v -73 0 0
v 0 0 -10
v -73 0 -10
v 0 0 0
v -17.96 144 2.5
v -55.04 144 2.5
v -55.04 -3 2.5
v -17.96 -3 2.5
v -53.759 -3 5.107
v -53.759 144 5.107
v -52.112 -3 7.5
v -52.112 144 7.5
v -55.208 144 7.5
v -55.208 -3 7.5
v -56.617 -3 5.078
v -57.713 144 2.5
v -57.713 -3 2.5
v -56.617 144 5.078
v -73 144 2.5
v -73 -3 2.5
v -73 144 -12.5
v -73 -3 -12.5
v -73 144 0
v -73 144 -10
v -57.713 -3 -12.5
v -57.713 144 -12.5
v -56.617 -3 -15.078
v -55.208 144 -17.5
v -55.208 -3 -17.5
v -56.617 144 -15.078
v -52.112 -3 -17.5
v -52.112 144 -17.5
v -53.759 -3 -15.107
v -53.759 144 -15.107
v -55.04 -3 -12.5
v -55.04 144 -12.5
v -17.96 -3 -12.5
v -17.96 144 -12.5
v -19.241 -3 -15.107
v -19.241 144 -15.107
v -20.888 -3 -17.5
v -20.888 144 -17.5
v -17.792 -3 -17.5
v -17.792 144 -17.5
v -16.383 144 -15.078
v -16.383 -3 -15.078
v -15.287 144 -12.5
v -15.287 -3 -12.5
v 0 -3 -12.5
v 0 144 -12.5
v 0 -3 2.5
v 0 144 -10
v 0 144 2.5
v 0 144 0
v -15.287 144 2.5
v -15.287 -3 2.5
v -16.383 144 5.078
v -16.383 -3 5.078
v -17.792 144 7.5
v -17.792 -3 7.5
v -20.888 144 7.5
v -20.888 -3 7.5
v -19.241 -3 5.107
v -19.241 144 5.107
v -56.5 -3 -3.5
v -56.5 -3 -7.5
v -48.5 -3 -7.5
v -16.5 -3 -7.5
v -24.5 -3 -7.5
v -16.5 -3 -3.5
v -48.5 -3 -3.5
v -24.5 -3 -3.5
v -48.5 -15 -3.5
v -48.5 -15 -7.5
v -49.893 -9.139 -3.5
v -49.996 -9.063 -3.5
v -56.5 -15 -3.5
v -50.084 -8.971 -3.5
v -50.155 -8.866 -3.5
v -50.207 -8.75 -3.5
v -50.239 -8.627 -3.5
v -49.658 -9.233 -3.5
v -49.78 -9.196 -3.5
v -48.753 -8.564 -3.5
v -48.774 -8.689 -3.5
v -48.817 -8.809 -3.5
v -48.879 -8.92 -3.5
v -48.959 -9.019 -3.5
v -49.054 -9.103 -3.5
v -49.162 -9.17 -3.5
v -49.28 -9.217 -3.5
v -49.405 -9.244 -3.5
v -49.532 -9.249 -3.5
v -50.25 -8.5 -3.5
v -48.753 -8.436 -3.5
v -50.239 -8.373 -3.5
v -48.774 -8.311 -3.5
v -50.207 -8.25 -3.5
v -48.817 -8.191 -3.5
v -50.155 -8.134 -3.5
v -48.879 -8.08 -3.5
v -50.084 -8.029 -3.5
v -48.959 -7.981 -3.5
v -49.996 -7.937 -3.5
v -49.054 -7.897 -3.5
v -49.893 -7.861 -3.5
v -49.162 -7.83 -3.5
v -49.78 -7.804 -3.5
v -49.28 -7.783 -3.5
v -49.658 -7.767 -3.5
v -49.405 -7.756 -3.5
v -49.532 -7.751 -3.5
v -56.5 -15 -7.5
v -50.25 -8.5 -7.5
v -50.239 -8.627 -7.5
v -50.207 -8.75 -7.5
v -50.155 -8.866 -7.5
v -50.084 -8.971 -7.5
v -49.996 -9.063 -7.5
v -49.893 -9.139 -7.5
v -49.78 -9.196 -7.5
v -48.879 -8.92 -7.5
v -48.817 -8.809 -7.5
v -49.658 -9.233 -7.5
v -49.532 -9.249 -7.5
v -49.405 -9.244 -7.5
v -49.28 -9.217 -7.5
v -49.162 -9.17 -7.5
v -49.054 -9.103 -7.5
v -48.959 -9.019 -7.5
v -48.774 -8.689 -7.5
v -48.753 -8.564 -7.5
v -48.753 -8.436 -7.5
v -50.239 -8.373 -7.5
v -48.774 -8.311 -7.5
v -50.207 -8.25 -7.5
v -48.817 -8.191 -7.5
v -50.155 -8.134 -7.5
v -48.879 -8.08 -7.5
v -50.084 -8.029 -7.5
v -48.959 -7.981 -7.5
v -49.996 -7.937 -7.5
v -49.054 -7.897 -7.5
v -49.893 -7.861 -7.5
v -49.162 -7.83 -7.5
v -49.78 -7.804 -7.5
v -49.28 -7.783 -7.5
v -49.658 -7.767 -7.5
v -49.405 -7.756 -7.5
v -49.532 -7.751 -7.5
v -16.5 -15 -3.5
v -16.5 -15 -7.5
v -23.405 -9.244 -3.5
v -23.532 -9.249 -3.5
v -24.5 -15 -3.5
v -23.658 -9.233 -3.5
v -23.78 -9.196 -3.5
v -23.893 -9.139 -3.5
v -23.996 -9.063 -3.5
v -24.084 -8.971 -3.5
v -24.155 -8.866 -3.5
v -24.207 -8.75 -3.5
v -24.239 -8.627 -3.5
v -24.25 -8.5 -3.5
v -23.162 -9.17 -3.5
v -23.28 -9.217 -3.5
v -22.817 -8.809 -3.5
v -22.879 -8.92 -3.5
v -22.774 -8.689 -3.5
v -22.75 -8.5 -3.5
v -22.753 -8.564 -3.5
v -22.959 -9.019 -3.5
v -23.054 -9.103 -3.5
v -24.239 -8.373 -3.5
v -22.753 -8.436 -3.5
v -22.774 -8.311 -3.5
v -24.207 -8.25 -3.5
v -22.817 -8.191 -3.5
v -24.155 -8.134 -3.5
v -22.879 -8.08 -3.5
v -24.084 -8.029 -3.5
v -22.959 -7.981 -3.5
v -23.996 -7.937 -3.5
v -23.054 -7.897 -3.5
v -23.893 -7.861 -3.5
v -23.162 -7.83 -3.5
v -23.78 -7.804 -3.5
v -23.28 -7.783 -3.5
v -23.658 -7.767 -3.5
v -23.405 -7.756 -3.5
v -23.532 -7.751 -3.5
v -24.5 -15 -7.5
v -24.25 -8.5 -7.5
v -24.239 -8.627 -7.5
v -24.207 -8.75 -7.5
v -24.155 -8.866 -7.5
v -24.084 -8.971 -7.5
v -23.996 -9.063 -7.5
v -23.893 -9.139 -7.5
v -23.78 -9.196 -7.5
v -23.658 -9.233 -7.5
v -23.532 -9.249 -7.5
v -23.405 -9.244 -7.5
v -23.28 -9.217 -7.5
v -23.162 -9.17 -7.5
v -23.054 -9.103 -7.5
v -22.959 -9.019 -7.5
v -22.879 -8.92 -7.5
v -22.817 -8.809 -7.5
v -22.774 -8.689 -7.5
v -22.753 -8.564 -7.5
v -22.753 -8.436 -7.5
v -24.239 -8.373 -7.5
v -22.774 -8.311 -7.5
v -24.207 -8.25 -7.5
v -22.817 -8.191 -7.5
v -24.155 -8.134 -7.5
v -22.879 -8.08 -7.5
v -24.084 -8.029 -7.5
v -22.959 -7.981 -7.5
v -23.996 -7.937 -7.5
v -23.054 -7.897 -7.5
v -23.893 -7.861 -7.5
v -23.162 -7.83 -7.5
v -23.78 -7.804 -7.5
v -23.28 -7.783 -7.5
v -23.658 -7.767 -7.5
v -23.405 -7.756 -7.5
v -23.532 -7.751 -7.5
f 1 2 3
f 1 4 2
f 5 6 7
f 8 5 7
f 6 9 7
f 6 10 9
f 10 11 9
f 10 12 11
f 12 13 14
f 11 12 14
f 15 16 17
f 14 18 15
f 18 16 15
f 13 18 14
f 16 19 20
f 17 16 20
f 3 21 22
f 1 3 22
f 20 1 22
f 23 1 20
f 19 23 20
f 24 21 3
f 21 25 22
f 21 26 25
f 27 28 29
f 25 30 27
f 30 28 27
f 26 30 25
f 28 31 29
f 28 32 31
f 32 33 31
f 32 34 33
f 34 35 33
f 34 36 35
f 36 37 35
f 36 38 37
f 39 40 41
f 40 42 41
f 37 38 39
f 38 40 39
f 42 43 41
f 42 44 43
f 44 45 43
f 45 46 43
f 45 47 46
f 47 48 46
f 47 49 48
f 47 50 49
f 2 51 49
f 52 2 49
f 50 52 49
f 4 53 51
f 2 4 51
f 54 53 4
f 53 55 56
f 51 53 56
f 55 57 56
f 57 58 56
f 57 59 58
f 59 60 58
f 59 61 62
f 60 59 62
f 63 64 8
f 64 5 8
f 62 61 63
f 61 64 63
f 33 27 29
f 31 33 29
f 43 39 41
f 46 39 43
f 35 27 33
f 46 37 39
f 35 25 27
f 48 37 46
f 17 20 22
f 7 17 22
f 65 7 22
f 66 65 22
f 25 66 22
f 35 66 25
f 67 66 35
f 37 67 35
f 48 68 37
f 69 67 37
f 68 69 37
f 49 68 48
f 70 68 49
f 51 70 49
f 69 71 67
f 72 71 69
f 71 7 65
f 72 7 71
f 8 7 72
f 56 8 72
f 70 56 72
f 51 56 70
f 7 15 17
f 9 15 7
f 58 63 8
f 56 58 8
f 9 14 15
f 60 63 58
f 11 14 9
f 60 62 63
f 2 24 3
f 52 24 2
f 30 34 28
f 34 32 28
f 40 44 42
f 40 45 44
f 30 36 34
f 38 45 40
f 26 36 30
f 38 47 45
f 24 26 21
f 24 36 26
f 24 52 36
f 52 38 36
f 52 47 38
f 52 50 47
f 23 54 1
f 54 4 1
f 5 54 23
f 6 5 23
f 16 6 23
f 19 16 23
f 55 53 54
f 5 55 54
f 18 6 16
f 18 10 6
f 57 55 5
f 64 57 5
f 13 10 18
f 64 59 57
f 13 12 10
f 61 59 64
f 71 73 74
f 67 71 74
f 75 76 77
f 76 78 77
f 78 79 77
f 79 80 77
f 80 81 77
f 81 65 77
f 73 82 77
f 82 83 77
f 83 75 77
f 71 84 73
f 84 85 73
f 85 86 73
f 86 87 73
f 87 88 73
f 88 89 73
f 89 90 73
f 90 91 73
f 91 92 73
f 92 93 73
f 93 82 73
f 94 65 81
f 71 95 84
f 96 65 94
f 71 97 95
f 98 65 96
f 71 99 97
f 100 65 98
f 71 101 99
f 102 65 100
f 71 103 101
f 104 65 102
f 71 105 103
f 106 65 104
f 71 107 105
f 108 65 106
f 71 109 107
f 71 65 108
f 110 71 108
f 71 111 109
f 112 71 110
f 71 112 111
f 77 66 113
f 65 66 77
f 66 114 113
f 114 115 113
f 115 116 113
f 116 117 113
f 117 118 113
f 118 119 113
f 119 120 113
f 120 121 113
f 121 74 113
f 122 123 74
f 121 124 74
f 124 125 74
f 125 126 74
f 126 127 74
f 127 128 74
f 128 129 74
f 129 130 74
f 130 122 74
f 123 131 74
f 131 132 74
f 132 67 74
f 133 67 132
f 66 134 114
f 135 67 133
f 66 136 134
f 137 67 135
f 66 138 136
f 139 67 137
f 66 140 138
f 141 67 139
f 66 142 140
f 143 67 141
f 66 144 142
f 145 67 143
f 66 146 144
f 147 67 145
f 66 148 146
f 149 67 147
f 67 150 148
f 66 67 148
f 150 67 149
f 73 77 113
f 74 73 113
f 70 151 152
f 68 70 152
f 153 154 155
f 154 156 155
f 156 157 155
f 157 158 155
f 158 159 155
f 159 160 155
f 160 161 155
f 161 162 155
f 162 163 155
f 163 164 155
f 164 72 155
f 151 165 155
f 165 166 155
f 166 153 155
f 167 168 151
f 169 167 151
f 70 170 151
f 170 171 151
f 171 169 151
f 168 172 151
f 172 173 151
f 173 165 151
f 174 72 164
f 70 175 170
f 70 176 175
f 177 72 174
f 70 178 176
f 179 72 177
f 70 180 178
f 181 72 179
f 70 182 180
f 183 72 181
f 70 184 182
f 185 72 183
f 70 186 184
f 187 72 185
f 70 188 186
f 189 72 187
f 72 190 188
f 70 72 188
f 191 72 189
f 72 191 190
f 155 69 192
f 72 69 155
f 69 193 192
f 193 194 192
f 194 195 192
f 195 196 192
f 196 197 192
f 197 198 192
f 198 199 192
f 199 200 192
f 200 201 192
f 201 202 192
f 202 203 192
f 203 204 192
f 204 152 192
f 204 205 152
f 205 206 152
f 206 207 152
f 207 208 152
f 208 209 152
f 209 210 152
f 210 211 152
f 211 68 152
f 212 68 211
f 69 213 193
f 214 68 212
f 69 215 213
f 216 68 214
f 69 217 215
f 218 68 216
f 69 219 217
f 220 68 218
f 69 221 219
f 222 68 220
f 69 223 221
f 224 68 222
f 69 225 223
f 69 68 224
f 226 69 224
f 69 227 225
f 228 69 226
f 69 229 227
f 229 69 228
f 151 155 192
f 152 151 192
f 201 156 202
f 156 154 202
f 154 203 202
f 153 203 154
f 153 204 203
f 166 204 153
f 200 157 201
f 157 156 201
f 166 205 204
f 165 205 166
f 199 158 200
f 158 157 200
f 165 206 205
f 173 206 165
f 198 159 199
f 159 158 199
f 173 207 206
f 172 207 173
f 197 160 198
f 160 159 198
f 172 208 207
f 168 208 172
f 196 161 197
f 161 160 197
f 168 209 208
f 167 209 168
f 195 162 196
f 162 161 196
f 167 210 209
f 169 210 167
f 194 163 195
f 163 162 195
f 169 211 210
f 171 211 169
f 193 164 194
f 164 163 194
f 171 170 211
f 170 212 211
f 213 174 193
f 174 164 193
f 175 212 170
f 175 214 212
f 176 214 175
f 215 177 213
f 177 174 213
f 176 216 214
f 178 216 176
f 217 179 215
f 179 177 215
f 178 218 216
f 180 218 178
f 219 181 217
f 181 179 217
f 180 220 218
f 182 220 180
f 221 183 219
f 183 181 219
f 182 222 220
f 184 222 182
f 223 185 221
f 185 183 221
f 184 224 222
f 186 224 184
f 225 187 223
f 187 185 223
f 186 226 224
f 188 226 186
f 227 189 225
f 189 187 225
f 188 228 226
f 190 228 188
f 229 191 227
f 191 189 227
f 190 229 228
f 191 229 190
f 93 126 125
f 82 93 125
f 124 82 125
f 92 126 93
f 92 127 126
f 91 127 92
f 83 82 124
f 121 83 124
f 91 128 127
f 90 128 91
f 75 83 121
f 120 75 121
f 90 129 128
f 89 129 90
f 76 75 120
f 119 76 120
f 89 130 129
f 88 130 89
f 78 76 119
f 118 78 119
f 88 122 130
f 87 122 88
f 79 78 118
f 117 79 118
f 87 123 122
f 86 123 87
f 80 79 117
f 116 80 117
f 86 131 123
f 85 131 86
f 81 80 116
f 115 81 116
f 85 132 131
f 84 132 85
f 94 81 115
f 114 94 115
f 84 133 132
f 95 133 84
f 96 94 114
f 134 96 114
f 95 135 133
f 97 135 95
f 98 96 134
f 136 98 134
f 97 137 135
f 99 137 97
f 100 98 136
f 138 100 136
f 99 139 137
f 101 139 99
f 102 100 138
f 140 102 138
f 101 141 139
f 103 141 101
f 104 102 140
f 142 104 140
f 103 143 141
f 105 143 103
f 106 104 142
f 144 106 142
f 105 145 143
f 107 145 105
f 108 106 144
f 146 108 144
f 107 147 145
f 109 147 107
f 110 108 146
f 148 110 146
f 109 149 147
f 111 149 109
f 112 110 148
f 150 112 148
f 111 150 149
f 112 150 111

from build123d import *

# Parameters (mm, degrees)
BOSS_EXTRUDE1_DEPTH = 3
BOSS_EXTRUDE2_START = 144
BOSS_EXTRUDE2_DEPTH = 144
SKETCH2_W           = 8
SKETCH2_H           = 4
BOSS_EXTRUDE3_DEPTH = 12
SKETCH3_R           = 0.75
CUT_EXTRUDE1_DEPTH  = 163.14191315


with BuildPart() as part:
    # Sketch1 → Boss-Extrude1 (new body)
    with BuildSketch(Plane(origin=(0, 0, 0), x_dir=(1, 0, 0), z_dir=(0, 1, 0))):
        with BuildLine():
            Line((-17.959503782, 12.5), (-55.040496218, 12.5))
            ThreePointArc((-55.040496218, 12.5), (-53.758525494, 15.106596746), (-52.112494996, 17.5))
            Line((-52.112494996, 17.5), (-55.208286934, 17.5))
            ThreePointArc((-55.208286934, 17.5), (-56.616693275, 15.078127389), (-57.713203436, 12.5))
            Line((-57.713203436, 12.5), (-73, 12.5))
            Line((-73, 12.5), (-73, -2.5))
            Line((-73, -2.5), (-57.713203436, -2.5))
            ThreePointArc((-57.713203436, -2.5), (-56.616693275, -5.078127389), (-55.208286934, -7.5))
            Line((-55.208286934, -7.5), (-52.112494996, -7.5))
            ThreePointArc((-52.112494996, -7.5), (-53.758525494, -5.106596746), (-55.040496218, -2.5))
            Line((-55.040496218, -2.5), (-17.959503782, -2.5))
            ThreePointArc((-17.959503782, -2.5), (-19.241474506, -5.106596746), (-20.887505004, -7.5))
            Line((-20.887505004, -7.5), (-17.791713066, -7.5))
            ThreePointArc((-17.791713066, -7.5), (-16.383306725, -5.078127389), (-15.286796564, -2.5))
            Line((-15.286796564, -2.5), (0, -2.5))
            Line((0, -2.5), (0, 12.5))
            Line((0, 12.5), (-15.286796564, 12.5))
            ThreePointArc((-15.286796564, 12.5), (-16.383306725, 15.078127389), (-17.791713066, 17.5))
            Line((-17.791713066, 17.5), (-20.887505004, 17.5))
            ThreePointArc((-20.887505004, 17.5), (-19.241474506, 15.106596746), (-17.959503782, 12.5))
        make_face()
    extrude(amount=-BOSS_EXTRUDE1_DEPTH)

    # Sketch1<4> → Boss-Extrude2 (add)
    with BuildSketch(Plane(origin=(0, 0, 0), x_dir=(1, 0, 0), z_dir=(0, 1, 0)).offset(BOSS_EXTRUDE2_START)):
        with BuildLine():
            Line((0, 10), (0, 12.5))
            Line((0, 12.5), (-15.286796564, 12.5))
            ThreePointArc((-15.286796564, 12.5), (-16.383306725, 15.078127389), (-17.791713066, 17.5))
            Line((-17.791713066, 17.5), (-20.887505004, 17.5))
            ThreePointArc((-20.887505004, 17.5), (-19.241474506, 15.106596746), (-17.959503782, 12.5))
            Line((-17.959503782, 12.5), (-55.040496218, 12.5))
            ThreePointArc((-55.040496218, 12.5), (-53.758525494, 15.106596746), (-52.112494996, 17.5))
            Line((-52.112494996, 17.5), (-55.208286934, 17.5))
            ThreePointArc((-55.208286934, 17.5), (-56.616693275, 15.078127389), (-57.713203436, 12.5))
            Line((-57.713203436, 12.5), (-73, 12.5))
            Line((-73, 12.5), (-73, 10))
            Line((-73, 10), (0, 10))
        make_face()
        with BuildLine():
            Line((-73, 0), (-73, -2.5))
            Line((-73, -2.5), (-57.713203436, -2.5))
            ThreePointArc((-57.713203436, -2.5), (-56.616693275, -5.078127389), (-55.208286934, -7.5))
            Line((-55.208286934, -7.5), (-52.112494996, -7.5))
            ThreePointArc((-52.112494996, -7.5), (-53.758525494, -5.106596746), (-55.040496218, -2.5))
            Line((-55.040496218, -2.5), (-17.959503782, -2.5))
            ThreePointArc((-17.959503782, -2.5), (-19.241474506, -5.106596746), (-20.887505004, -7.5))
            Line((-20.887505004, -7.5), (-17.791713066, -7.5))
            ThreePointArc((-17.791713066, -7.5), (-16.383306725, -5.078127389), (-15.286796564, -2.5))
            Line((-15.286796564, -2.5), (0, -2.5))
            Line((0, -2.5), (0, 0))
            Line((0, 0), (-73, 0))
        make_face()
    extrude(amount=-BOSS_EXTRUDE2_DEPTH)

    # Sketch2 → Boss-Extrude3 (add)
    with BuildSketch(Plane.XZ.offset(3)):
        with Locations((-52.5, -5.5)):
            Rectangle(SKETCH2_W, SKETCH2_H)
        with Locations((-20.5, -5.5)):
            Rectangle(SKETCH2_W, SKETCH2_H)
    extrude(amount=BOSS_EXTRUDE3_DEPTH)

    # Sketch3 → Cut-Extrude1 (cut, through all)
    with BuildSketch(Plane(origin=(0, 0, -7.5), x_dir=(-1, 0, 0), z_dir=(0, 0, -1))):
        with Locations((23.5, -8.5)):
            Circle(SKETCH3_R)
        with Locations((49.5, -8.5)):
            Circle(SKETCH3_R)
    extrude(amount=-CUT_EXTRUDE1_DEPTH, mode=Mode.SUBTRACT)


solid = part.part
